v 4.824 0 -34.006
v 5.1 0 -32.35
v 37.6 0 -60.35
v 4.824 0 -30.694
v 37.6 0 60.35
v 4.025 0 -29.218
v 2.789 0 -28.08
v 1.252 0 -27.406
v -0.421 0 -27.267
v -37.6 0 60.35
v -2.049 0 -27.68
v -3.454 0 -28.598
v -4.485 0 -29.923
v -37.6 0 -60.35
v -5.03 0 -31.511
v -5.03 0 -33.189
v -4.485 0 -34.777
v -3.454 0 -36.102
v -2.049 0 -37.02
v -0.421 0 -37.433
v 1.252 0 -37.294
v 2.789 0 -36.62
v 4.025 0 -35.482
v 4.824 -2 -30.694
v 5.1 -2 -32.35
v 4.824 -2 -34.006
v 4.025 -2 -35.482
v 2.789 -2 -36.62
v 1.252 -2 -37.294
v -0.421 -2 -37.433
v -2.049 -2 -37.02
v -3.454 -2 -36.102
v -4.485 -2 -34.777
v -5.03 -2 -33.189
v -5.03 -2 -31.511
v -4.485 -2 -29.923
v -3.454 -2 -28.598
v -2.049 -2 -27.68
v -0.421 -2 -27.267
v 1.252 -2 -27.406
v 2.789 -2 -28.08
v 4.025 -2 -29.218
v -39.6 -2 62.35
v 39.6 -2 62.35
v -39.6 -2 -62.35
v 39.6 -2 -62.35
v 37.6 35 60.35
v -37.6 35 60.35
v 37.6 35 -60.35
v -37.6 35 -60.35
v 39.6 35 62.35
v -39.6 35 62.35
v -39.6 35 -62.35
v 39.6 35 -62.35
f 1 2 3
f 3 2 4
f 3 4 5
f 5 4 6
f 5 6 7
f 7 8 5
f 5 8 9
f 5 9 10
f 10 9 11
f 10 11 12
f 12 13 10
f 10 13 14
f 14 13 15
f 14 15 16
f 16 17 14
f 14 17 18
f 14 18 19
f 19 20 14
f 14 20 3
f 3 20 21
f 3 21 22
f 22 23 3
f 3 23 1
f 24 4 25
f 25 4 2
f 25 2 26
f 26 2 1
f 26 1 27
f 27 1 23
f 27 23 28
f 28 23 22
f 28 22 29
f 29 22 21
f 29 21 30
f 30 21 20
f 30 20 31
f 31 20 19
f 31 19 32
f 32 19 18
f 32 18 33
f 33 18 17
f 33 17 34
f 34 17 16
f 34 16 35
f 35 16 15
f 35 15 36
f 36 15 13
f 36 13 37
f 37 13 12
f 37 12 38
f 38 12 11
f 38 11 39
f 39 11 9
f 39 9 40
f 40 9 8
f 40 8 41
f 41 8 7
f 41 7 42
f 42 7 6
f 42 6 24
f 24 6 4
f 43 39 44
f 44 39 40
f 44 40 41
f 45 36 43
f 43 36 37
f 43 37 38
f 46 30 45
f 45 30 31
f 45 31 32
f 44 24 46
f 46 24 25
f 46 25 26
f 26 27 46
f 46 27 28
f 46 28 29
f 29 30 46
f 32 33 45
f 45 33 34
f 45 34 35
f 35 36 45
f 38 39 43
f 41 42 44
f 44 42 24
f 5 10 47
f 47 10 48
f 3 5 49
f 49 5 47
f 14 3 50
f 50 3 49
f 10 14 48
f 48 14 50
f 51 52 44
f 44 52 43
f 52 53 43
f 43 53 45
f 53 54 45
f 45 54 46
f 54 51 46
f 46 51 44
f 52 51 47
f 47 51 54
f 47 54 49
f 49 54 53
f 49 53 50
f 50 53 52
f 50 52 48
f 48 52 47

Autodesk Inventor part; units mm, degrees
ref_plane "YZ Plane" through (0, 0, 0) normal (1, 0, 0) x (0, 1, 0)
ref_plane "XZ Plane" through (0, 0, 0) normal (0, 1, 0) x (-1, 0, 0)
ref_plane "XY Plane" through (0, 0, 0) normal (0, 0, 1) x (1, 0, 0)
sketch "Sketch1" plane through (0, 0, 0) normal (0, 1, 0) x (-1, 0, 0)
  line L0 (37.6, 60.35) -> (-37.6, 60.35)
  line L1 (-37.6, 60.35) -> (-37.6, -60.35)
  line L2 (-37.6, -60.35) -> (37.6, -60.35)
  line L3 (37.6, -60.35) -> (37.6, 60.35)
  line L4 (37.6, 60.35) -> (-37.6, -60.35) construction
  line L5 (-37.6, 60.35) -> (37.6, -60.35) construction
  line L6 (39.6, 62.35) -> (-39.6, 62.35)
  line L7 (-39.6, 62.35) -> (-39.6, -62.35)
  line L8 (-39.6, -62.35) -> (39.6, -62.35)
  line L9 (39.6, -62.35) -> (39.6, 62.35)
  point P0 (0, 0)
  dimension "d0" = 120.7
  dimension "d1" = 75.2
  dimension "d2" = 2
  dimension "d3" = 2
  dimension "d4" = 2
  dimension "d5" = 2
extrude "Extrusion1" add sketch "Sketch1" along normal blind 35
sketch "Sketch4" plane through (0, 0, 0) normal (0, -1, 0) x (1, 0, 0)
  line L0 (-39.6, 62.35) -> (39.6, 62.35) projected
  line L1 (39.6, 62.35) -> (-39.6, 62.35)
  line L2 (-39.6, 62.35) -> (-39.6, -62.35)
  line L3 (-39.6, -62.35) -> (39.6, -62.35)
  line L4 (39.6, -62.35) -> (39.6, 62.35)
  circle A0 centre (0, -32.35) radius 5.1
  line L5 (-37.6, 60.35) -> (-37.6, -60.35) projected
  point P0 (0, 0)
  point P1 (-39.6, 62.35)
  dimension "d13" = 10.2
  dimension "d14" = 37.6
  dimension "d15" = 30
extrude "Extrusion3" add sketch "Sketch4" along normal blind 2
